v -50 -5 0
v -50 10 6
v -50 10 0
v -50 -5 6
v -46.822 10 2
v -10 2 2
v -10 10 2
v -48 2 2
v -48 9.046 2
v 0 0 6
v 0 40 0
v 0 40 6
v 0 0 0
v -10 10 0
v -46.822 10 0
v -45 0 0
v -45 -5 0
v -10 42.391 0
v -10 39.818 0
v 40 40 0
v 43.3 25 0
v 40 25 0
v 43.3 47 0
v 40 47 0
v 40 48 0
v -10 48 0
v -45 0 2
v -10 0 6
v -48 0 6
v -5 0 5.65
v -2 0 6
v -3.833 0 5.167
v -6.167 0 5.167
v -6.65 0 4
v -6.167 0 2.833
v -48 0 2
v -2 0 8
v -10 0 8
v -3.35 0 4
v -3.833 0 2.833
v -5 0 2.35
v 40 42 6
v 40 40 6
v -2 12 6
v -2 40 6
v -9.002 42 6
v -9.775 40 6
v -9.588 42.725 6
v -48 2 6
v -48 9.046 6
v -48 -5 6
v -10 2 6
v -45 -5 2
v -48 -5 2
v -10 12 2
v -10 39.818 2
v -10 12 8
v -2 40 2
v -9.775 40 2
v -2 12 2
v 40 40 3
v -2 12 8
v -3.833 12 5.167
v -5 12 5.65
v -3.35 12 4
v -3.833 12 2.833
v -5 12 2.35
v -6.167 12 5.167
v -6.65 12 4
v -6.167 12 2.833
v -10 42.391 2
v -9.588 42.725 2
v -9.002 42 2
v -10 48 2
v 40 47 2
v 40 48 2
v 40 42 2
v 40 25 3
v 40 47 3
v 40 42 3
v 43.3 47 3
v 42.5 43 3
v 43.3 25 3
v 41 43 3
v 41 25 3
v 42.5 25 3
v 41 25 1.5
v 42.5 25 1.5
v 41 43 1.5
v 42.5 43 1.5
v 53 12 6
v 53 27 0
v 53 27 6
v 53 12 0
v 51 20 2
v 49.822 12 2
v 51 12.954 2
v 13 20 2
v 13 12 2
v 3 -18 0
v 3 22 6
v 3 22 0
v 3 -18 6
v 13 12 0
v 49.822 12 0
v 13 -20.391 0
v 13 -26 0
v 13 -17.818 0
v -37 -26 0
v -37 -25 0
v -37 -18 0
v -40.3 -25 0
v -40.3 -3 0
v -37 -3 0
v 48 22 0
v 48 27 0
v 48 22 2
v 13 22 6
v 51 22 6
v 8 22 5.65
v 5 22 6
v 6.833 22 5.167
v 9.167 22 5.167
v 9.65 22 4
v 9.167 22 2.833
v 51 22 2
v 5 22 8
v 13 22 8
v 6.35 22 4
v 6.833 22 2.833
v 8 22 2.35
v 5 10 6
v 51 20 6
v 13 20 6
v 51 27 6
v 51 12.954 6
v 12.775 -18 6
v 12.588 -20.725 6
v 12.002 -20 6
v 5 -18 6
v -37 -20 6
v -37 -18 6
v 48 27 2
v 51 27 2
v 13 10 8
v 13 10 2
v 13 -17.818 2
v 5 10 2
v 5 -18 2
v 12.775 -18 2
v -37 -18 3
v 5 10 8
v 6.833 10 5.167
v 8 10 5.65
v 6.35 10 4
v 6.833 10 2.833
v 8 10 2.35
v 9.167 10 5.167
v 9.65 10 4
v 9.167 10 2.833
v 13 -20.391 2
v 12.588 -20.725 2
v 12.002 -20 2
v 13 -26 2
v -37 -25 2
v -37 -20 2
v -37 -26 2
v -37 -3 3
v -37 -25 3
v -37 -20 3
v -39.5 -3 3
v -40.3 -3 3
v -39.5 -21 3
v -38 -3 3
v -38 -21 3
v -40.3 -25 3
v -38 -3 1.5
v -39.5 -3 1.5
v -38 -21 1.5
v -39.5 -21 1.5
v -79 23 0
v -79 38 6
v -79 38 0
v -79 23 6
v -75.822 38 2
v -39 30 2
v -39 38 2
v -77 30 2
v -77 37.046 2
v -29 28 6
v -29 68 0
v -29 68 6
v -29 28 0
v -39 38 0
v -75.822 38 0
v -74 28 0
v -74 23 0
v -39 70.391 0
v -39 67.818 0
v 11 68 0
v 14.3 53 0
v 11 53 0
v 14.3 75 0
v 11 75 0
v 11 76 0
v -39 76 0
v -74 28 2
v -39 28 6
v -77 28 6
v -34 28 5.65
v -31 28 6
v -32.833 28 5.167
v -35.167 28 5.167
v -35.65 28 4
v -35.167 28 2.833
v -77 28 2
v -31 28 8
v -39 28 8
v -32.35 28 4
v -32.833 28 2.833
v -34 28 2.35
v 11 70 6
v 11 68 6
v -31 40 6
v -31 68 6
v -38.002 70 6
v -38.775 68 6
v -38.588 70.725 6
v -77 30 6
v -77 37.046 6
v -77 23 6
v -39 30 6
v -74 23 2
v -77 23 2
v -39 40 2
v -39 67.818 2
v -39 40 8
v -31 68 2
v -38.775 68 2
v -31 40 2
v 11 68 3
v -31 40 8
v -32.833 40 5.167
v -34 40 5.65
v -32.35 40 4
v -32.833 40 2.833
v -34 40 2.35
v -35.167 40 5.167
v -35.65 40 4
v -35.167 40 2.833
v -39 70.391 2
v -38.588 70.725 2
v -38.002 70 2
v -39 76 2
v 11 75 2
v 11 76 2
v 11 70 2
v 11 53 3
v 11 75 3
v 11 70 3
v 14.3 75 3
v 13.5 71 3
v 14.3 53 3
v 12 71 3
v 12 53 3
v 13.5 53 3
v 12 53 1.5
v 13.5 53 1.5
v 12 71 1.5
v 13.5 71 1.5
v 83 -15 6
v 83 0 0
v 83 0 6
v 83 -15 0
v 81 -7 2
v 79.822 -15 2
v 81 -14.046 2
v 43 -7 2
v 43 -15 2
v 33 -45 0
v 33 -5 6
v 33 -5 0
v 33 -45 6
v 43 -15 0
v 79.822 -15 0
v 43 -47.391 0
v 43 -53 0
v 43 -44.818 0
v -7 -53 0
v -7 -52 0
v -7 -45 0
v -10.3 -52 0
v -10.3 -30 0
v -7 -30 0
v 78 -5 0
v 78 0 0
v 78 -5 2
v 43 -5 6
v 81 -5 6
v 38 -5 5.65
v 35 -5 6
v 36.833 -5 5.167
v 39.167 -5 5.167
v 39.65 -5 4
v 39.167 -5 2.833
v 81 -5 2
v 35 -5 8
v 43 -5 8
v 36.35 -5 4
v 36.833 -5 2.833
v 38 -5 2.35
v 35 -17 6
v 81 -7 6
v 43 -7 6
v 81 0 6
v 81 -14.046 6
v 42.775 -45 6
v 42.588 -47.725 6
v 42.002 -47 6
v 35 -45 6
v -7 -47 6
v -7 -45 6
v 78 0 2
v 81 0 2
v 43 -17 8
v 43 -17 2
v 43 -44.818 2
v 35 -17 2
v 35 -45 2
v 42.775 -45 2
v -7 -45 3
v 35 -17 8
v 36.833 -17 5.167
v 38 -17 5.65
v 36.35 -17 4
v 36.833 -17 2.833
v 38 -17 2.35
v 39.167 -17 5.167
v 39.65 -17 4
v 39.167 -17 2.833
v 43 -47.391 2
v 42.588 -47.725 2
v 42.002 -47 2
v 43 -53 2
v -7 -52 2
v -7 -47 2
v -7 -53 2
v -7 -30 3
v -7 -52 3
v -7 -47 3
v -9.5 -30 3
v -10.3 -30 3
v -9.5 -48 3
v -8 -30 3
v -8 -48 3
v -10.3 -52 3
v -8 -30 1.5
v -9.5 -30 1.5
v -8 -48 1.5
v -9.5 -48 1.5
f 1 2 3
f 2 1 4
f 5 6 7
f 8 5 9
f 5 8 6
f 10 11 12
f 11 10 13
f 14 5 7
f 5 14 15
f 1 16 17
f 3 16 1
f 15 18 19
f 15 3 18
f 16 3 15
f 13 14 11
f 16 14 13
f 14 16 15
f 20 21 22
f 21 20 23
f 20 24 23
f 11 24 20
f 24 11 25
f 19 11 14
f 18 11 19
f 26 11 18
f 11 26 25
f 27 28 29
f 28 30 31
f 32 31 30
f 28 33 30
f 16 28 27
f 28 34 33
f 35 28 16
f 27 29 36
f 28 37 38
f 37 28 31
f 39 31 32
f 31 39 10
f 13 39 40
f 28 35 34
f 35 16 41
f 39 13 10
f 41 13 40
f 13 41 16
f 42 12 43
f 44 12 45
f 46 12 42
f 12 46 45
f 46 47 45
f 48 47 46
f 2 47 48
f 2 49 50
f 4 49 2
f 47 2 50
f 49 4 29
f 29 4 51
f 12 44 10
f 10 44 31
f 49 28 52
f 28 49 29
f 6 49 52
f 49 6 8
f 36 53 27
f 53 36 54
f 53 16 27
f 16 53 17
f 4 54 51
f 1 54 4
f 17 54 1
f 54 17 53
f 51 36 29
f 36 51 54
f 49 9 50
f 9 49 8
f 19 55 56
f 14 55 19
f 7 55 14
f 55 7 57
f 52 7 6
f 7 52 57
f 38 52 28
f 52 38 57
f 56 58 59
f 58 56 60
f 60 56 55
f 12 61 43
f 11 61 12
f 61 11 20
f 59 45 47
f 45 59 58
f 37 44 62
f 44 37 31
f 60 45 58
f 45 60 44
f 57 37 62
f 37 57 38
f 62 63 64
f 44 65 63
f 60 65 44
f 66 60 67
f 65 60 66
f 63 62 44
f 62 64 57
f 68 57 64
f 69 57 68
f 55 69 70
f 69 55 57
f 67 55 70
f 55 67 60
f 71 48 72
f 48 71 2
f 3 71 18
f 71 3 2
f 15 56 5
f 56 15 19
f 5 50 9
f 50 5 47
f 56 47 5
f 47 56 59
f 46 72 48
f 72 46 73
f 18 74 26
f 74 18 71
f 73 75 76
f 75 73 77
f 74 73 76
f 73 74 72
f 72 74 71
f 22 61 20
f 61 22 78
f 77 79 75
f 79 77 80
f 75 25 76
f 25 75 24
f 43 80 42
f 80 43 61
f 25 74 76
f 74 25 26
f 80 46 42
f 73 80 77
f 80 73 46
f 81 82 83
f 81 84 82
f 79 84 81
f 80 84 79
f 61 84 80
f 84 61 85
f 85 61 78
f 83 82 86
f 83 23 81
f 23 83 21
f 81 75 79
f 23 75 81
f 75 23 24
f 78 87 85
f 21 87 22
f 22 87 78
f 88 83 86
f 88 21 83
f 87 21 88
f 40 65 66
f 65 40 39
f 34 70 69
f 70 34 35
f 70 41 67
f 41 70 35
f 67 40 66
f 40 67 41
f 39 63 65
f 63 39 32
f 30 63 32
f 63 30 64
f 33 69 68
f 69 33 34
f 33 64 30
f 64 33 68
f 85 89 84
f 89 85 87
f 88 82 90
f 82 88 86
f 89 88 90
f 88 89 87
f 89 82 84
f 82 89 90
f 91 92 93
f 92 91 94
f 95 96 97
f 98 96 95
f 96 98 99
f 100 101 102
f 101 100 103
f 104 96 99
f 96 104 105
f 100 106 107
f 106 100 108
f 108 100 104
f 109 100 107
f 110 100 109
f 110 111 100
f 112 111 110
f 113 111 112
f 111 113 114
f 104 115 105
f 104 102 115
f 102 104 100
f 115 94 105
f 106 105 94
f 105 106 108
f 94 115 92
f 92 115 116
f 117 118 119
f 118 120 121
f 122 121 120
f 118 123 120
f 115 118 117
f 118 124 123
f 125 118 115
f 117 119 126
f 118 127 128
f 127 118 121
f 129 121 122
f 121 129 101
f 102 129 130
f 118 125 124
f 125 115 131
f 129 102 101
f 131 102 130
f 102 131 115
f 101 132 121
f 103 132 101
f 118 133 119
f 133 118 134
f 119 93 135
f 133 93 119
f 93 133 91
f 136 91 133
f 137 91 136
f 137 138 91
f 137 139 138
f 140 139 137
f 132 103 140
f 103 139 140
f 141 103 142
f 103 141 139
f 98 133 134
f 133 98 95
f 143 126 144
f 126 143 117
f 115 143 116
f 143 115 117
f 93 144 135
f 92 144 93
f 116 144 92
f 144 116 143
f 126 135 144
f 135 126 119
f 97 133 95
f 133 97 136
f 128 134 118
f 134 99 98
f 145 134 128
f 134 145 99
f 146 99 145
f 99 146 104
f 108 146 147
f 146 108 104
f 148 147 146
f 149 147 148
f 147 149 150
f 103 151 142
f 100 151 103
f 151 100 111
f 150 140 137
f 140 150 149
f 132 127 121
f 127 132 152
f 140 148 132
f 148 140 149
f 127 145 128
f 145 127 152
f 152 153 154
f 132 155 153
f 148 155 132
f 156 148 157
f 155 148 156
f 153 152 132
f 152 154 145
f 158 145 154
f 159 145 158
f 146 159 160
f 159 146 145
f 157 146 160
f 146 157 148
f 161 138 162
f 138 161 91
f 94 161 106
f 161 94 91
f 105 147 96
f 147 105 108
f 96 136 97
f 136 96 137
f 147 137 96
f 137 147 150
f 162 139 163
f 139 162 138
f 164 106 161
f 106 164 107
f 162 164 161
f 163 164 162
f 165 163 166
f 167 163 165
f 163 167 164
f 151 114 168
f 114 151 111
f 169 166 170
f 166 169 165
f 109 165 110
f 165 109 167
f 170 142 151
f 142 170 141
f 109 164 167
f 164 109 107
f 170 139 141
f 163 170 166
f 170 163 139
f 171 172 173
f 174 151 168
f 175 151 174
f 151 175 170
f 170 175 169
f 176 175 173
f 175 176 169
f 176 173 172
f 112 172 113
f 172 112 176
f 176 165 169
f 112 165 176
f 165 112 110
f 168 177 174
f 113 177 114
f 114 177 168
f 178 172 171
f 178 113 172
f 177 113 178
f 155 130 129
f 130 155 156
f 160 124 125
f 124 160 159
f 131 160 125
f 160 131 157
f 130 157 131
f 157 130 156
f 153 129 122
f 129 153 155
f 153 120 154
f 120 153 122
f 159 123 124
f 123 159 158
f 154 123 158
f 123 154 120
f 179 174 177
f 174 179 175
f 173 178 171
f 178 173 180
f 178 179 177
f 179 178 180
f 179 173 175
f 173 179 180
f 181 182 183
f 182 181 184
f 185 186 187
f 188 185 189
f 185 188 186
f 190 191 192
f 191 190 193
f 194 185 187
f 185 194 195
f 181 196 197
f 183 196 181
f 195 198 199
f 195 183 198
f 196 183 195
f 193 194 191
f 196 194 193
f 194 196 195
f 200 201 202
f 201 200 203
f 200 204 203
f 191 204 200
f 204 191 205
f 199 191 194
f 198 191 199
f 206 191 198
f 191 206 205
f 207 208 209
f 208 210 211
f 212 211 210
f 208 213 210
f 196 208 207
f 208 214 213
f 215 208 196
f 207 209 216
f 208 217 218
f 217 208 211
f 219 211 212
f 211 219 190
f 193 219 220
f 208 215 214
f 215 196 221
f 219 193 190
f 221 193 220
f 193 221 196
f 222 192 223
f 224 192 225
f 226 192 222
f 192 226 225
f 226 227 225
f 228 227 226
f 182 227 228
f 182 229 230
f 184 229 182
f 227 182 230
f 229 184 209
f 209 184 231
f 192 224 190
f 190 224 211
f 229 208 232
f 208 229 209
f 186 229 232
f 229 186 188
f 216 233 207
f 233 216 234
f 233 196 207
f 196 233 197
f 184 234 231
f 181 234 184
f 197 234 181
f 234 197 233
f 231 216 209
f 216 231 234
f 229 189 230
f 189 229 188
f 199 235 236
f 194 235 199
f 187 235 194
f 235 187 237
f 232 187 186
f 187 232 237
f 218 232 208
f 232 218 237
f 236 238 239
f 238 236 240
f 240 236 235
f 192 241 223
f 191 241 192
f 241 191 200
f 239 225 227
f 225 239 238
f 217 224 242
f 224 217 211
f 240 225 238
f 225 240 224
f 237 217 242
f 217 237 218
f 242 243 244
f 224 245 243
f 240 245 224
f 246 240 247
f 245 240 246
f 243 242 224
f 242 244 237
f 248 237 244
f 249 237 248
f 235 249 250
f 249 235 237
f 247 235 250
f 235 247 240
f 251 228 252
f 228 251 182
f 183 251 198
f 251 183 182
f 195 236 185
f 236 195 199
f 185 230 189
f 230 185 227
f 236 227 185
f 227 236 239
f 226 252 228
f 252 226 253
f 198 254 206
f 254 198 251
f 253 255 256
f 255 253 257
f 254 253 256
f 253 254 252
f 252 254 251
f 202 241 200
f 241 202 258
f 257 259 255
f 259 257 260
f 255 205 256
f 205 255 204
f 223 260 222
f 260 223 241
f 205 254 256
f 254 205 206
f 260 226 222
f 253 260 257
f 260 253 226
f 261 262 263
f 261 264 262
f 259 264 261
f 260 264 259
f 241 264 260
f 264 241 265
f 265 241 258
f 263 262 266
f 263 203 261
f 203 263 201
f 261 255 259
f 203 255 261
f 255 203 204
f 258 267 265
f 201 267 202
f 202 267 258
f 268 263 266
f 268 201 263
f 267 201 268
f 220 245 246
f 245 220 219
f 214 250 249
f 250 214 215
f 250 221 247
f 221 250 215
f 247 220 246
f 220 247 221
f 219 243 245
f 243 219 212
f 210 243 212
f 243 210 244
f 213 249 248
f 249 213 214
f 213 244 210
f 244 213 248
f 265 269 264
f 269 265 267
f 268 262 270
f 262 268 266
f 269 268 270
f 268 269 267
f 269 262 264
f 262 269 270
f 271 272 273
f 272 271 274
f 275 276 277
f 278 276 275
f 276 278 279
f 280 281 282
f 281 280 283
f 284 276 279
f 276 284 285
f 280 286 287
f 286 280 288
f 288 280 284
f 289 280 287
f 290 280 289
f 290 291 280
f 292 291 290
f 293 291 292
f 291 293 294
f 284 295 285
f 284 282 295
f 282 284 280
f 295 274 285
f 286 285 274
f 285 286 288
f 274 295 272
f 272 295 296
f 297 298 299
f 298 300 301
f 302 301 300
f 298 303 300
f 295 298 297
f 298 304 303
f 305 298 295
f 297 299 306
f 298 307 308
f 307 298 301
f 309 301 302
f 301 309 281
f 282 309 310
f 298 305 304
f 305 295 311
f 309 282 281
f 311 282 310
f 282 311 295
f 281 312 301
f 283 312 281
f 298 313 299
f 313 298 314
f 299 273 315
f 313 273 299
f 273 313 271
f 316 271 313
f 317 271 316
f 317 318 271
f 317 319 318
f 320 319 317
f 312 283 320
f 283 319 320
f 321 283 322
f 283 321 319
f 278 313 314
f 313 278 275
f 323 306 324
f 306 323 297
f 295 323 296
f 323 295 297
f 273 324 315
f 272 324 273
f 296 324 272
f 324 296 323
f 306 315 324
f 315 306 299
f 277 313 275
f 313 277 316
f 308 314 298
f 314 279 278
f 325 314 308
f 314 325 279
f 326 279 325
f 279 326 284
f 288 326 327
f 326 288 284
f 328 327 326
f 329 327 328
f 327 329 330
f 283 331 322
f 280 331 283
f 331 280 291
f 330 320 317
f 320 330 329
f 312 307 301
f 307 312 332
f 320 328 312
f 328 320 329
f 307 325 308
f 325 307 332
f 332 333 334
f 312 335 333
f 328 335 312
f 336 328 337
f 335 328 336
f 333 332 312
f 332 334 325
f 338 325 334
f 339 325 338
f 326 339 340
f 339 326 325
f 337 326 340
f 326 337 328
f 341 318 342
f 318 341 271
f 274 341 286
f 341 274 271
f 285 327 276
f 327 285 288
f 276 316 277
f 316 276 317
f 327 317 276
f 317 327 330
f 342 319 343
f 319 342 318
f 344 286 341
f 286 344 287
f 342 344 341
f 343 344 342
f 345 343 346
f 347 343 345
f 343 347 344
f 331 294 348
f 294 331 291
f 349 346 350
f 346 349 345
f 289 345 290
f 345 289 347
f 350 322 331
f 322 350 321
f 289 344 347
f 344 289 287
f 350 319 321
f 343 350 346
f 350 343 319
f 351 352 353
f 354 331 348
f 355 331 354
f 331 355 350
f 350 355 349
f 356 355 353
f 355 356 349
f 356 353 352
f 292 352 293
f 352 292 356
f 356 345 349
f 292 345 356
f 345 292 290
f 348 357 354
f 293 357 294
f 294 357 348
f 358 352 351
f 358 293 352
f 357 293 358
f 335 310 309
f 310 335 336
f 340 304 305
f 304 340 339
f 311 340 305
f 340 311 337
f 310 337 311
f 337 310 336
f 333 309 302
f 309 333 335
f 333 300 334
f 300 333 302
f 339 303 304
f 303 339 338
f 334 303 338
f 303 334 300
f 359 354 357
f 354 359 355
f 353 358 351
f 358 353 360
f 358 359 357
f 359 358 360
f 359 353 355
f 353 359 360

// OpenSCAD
//OpenSCAD-Skript

//Moduldefinition mit Parametern
module edge (
//Parameter
hght=5,thck=2.0,rh=6,
lngth1=50, lngth2=40,d1=1.3)
//Beginn Modul
{
difference(){   //difference 1
union(){        //union 1
difference(){   //difference 2
union(){        //union 2
    //alles, was vor der nächsten geschweiften Klammer steht, wird zusammengefügt (union 2)
//Traverse unten
translate([-lngth1,0,0])
cube([lngth1,10,thck]);
//Rippe Traverse
translate([-lngth1,0,0])
cube([lngth1,thck,rh]);
//Stütze hinten
translate([-lngth1,-hght,0])
cube([hght,hght,thck]);
//Rippe Stütze hinten
translate([-lngth1,-hght,0])
cube([thck,hght+10,rh]);
//Vertikale Stütze
translate([-10,0,0])
cube([10,lngth2,thck]); 
//Rippe Vertikale Stütze
translate([-thck,0,0])
cube([thck,lngth2,rh]);     
//translate([0, 0, 0])
//cylinder(d=diaA, h=hght, $fn=32);
//Klotz für Schraube
translate([-10,0,0])
cube([8,12,8]);
//Schräge Rippe
translate([-lngth1,10,0])
rotate([0,0,-51])
cube([thck,52,rh]);
//Ausleger
translate([-10,lngth2,0])
cube([lngth2+10,8,thck]);
//Rippe Ausleger
translate([-10,lngth2,0])
cube([lngth2+10,thck,rh]);
//Stickträgerprofil
translate([lngth2,18+7,0])
cube([3.3,lngth2-18,3]);
}               //union 2 end
    //alles, was vor der nächsten geschweiften Klammer steht, wird davon abgezogen (difference 2)
translate([-5, -0.1, 4])
rotate([-90,0,0])
cylinder(d=3.3, h=24, $fn=8);
////Stickträgerrinne
translate([lngth2+1,18+3,1.5])
cube([1.5,lngth2-18,3]);

}  //difference 2 end
    //alles, was vor der nächsten geschweiften Klammer steht, wird dazu hinzugefügt (union 1)
//Text


}               //union 1 end
    //alles, was vor der nächsten geschweiften Klammer steht, wird davon wieder abgezogen (difference 1)

}               //difference 1 end

}  //module end


//Hier werden Instanzen des Moduls aufgerufen
 

translate([0,0,0]) edge();
rotate([0,0,180])
translate([-3,-22,0]) edge();
translate([-29,28,0]) edge();
rotate([0,0,180])
translate([-33,5,0]) edge();
